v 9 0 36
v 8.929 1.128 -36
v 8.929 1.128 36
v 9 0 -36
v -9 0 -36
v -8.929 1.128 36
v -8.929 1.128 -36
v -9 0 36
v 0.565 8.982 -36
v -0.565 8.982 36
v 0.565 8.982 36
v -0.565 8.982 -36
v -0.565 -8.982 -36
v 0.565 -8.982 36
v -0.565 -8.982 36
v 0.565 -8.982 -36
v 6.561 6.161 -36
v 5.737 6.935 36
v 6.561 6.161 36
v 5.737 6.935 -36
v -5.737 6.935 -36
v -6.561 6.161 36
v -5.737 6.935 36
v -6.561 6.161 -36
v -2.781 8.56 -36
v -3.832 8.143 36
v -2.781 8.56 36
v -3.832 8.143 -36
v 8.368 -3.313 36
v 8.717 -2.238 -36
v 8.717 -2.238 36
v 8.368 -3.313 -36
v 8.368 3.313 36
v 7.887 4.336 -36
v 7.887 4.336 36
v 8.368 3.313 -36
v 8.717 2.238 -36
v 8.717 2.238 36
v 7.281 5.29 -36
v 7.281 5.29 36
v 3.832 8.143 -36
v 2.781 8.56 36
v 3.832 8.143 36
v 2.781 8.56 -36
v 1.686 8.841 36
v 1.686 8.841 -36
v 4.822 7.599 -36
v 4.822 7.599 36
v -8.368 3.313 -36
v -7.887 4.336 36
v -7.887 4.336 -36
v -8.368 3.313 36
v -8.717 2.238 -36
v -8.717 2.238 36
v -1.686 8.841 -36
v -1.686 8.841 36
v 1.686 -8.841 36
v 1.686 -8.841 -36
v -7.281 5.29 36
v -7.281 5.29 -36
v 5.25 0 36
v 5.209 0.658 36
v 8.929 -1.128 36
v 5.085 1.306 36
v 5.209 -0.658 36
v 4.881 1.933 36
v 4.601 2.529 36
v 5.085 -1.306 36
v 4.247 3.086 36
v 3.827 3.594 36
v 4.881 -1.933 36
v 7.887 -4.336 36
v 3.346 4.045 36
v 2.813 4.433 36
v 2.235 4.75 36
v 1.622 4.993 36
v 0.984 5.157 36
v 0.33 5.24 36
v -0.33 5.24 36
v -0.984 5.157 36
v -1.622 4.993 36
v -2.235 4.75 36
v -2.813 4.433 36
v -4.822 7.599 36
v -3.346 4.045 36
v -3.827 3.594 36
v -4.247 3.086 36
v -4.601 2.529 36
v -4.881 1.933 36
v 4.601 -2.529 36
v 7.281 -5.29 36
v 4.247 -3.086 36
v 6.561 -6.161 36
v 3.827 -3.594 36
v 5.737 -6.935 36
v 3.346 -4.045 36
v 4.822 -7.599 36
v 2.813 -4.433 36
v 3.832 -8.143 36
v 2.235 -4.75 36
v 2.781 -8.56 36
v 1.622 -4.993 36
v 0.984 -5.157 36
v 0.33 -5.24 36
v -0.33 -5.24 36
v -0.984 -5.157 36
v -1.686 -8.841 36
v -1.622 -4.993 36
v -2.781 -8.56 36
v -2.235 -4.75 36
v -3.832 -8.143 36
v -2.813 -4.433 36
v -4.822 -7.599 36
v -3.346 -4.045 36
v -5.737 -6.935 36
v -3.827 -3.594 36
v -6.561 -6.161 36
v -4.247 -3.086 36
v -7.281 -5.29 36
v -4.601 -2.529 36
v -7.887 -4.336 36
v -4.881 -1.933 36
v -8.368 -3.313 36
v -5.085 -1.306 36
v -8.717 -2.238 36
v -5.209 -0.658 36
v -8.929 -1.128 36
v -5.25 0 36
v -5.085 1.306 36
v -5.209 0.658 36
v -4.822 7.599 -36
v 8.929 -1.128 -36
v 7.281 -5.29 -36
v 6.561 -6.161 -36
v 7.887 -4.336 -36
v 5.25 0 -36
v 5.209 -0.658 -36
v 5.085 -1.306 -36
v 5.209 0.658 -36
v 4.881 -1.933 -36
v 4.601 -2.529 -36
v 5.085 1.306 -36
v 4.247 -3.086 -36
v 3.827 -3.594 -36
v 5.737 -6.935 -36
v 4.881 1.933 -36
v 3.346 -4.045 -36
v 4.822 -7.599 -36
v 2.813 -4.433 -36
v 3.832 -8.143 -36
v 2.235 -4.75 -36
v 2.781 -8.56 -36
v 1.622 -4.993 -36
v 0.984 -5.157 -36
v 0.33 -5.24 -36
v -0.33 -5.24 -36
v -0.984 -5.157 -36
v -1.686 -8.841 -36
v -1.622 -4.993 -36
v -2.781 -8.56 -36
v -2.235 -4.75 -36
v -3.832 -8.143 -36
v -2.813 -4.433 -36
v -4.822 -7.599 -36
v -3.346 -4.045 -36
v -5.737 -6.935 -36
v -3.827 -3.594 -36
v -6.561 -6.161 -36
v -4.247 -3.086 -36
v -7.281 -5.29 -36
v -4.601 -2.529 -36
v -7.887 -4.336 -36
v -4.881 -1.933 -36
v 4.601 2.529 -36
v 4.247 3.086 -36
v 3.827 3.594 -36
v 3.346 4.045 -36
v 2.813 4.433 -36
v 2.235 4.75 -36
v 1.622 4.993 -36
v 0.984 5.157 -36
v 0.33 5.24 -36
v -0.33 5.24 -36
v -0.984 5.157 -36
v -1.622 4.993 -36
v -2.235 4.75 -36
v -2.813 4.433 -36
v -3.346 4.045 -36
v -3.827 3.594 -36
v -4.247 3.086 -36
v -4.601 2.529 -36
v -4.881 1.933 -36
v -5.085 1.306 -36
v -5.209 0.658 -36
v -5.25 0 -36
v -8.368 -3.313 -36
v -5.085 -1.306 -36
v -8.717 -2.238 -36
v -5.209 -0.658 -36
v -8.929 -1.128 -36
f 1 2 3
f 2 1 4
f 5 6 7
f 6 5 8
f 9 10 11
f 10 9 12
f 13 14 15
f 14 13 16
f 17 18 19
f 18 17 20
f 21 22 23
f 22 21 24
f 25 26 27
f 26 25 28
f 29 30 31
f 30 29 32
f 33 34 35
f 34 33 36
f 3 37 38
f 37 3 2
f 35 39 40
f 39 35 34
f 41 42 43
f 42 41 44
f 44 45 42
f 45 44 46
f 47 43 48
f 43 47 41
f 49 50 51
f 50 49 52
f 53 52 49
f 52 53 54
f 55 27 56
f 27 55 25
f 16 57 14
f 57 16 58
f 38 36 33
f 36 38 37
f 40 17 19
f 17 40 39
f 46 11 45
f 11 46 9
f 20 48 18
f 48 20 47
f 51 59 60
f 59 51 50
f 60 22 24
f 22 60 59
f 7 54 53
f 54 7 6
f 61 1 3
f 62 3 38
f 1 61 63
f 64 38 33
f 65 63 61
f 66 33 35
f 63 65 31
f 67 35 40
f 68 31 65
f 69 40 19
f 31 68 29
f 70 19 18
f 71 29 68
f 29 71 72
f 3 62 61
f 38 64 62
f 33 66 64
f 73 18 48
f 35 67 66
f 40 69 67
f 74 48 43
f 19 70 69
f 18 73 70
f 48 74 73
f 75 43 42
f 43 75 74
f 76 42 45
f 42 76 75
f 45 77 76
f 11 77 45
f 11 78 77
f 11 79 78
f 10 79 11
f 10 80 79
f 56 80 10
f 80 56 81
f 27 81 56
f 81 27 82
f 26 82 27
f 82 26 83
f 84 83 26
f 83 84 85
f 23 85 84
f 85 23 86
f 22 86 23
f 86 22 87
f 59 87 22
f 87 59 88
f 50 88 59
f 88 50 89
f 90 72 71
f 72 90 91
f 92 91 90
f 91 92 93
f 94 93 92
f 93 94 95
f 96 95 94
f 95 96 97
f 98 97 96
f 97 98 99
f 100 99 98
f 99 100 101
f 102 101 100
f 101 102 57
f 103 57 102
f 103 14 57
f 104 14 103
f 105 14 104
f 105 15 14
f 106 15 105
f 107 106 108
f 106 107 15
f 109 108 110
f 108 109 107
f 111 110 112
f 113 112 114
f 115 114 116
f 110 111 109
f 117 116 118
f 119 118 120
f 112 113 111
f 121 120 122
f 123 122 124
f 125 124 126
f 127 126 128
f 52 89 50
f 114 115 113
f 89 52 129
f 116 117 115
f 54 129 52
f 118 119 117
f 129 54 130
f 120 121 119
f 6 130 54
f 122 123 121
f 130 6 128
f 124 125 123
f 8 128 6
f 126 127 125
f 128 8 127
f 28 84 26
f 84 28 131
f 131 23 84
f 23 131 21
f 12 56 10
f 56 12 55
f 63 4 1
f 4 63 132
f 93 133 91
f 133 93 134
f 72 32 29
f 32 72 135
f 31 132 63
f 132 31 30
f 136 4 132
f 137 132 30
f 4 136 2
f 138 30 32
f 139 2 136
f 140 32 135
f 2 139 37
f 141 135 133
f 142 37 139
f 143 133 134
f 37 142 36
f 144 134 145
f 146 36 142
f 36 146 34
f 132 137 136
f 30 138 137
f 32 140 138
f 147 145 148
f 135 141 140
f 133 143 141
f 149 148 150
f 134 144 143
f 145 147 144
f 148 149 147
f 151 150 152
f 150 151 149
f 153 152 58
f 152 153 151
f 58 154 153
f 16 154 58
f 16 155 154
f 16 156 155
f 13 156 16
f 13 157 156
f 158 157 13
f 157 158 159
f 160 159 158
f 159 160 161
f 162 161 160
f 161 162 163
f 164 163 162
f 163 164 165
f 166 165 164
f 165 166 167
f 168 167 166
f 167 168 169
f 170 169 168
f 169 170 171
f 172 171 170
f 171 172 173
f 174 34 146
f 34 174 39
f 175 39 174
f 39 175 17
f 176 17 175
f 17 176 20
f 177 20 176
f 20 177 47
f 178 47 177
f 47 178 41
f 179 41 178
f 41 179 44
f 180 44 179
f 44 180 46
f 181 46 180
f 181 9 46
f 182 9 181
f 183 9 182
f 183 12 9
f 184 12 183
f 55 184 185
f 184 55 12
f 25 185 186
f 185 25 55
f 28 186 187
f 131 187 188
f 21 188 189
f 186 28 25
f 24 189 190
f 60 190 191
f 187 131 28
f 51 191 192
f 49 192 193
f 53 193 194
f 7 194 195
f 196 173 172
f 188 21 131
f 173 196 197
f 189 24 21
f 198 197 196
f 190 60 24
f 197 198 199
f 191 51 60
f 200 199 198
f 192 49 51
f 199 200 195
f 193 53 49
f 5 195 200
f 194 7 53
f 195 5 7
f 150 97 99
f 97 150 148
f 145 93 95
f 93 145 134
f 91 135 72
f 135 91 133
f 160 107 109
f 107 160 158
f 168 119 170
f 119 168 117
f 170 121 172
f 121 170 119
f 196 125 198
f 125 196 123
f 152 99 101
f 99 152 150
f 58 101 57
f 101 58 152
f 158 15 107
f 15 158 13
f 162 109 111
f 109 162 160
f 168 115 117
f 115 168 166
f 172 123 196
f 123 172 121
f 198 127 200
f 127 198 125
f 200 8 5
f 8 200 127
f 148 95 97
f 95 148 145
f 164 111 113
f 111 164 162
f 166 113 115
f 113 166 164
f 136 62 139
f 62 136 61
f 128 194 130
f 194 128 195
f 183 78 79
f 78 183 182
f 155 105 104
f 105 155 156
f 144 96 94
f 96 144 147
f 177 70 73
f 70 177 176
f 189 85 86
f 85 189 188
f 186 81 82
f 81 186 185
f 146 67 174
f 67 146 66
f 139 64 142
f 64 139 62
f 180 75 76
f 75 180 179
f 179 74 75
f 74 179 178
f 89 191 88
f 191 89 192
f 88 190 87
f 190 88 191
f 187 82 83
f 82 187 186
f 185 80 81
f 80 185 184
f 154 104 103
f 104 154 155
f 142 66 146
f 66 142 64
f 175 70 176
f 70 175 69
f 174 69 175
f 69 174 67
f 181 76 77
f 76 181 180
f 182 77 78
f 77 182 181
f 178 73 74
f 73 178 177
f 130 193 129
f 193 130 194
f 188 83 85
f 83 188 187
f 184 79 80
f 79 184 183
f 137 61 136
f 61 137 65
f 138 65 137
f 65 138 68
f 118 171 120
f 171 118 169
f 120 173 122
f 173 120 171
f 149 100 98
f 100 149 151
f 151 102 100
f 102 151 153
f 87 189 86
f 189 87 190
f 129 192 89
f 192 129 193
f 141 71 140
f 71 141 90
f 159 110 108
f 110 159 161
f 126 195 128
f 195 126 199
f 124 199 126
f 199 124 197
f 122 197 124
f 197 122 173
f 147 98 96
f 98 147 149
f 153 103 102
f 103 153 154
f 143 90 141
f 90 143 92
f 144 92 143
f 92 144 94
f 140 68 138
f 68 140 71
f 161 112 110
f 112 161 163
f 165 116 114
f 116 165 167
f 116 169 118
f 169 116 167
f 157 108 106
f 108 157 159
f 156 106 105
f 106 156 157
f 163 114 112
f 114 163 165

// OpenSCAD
$fn = 50;


difference() {
	union() {
		translate(v = [0, 0, -36.0000000000]) {
			cylinder(h = 72, r = 9.0000000000);
		}
	}
	union() {
		translate(v = [0, 0, -100.0000000000]) {
			cylinder(h = 200, r = 5.2500000000);
		}
	}
}
